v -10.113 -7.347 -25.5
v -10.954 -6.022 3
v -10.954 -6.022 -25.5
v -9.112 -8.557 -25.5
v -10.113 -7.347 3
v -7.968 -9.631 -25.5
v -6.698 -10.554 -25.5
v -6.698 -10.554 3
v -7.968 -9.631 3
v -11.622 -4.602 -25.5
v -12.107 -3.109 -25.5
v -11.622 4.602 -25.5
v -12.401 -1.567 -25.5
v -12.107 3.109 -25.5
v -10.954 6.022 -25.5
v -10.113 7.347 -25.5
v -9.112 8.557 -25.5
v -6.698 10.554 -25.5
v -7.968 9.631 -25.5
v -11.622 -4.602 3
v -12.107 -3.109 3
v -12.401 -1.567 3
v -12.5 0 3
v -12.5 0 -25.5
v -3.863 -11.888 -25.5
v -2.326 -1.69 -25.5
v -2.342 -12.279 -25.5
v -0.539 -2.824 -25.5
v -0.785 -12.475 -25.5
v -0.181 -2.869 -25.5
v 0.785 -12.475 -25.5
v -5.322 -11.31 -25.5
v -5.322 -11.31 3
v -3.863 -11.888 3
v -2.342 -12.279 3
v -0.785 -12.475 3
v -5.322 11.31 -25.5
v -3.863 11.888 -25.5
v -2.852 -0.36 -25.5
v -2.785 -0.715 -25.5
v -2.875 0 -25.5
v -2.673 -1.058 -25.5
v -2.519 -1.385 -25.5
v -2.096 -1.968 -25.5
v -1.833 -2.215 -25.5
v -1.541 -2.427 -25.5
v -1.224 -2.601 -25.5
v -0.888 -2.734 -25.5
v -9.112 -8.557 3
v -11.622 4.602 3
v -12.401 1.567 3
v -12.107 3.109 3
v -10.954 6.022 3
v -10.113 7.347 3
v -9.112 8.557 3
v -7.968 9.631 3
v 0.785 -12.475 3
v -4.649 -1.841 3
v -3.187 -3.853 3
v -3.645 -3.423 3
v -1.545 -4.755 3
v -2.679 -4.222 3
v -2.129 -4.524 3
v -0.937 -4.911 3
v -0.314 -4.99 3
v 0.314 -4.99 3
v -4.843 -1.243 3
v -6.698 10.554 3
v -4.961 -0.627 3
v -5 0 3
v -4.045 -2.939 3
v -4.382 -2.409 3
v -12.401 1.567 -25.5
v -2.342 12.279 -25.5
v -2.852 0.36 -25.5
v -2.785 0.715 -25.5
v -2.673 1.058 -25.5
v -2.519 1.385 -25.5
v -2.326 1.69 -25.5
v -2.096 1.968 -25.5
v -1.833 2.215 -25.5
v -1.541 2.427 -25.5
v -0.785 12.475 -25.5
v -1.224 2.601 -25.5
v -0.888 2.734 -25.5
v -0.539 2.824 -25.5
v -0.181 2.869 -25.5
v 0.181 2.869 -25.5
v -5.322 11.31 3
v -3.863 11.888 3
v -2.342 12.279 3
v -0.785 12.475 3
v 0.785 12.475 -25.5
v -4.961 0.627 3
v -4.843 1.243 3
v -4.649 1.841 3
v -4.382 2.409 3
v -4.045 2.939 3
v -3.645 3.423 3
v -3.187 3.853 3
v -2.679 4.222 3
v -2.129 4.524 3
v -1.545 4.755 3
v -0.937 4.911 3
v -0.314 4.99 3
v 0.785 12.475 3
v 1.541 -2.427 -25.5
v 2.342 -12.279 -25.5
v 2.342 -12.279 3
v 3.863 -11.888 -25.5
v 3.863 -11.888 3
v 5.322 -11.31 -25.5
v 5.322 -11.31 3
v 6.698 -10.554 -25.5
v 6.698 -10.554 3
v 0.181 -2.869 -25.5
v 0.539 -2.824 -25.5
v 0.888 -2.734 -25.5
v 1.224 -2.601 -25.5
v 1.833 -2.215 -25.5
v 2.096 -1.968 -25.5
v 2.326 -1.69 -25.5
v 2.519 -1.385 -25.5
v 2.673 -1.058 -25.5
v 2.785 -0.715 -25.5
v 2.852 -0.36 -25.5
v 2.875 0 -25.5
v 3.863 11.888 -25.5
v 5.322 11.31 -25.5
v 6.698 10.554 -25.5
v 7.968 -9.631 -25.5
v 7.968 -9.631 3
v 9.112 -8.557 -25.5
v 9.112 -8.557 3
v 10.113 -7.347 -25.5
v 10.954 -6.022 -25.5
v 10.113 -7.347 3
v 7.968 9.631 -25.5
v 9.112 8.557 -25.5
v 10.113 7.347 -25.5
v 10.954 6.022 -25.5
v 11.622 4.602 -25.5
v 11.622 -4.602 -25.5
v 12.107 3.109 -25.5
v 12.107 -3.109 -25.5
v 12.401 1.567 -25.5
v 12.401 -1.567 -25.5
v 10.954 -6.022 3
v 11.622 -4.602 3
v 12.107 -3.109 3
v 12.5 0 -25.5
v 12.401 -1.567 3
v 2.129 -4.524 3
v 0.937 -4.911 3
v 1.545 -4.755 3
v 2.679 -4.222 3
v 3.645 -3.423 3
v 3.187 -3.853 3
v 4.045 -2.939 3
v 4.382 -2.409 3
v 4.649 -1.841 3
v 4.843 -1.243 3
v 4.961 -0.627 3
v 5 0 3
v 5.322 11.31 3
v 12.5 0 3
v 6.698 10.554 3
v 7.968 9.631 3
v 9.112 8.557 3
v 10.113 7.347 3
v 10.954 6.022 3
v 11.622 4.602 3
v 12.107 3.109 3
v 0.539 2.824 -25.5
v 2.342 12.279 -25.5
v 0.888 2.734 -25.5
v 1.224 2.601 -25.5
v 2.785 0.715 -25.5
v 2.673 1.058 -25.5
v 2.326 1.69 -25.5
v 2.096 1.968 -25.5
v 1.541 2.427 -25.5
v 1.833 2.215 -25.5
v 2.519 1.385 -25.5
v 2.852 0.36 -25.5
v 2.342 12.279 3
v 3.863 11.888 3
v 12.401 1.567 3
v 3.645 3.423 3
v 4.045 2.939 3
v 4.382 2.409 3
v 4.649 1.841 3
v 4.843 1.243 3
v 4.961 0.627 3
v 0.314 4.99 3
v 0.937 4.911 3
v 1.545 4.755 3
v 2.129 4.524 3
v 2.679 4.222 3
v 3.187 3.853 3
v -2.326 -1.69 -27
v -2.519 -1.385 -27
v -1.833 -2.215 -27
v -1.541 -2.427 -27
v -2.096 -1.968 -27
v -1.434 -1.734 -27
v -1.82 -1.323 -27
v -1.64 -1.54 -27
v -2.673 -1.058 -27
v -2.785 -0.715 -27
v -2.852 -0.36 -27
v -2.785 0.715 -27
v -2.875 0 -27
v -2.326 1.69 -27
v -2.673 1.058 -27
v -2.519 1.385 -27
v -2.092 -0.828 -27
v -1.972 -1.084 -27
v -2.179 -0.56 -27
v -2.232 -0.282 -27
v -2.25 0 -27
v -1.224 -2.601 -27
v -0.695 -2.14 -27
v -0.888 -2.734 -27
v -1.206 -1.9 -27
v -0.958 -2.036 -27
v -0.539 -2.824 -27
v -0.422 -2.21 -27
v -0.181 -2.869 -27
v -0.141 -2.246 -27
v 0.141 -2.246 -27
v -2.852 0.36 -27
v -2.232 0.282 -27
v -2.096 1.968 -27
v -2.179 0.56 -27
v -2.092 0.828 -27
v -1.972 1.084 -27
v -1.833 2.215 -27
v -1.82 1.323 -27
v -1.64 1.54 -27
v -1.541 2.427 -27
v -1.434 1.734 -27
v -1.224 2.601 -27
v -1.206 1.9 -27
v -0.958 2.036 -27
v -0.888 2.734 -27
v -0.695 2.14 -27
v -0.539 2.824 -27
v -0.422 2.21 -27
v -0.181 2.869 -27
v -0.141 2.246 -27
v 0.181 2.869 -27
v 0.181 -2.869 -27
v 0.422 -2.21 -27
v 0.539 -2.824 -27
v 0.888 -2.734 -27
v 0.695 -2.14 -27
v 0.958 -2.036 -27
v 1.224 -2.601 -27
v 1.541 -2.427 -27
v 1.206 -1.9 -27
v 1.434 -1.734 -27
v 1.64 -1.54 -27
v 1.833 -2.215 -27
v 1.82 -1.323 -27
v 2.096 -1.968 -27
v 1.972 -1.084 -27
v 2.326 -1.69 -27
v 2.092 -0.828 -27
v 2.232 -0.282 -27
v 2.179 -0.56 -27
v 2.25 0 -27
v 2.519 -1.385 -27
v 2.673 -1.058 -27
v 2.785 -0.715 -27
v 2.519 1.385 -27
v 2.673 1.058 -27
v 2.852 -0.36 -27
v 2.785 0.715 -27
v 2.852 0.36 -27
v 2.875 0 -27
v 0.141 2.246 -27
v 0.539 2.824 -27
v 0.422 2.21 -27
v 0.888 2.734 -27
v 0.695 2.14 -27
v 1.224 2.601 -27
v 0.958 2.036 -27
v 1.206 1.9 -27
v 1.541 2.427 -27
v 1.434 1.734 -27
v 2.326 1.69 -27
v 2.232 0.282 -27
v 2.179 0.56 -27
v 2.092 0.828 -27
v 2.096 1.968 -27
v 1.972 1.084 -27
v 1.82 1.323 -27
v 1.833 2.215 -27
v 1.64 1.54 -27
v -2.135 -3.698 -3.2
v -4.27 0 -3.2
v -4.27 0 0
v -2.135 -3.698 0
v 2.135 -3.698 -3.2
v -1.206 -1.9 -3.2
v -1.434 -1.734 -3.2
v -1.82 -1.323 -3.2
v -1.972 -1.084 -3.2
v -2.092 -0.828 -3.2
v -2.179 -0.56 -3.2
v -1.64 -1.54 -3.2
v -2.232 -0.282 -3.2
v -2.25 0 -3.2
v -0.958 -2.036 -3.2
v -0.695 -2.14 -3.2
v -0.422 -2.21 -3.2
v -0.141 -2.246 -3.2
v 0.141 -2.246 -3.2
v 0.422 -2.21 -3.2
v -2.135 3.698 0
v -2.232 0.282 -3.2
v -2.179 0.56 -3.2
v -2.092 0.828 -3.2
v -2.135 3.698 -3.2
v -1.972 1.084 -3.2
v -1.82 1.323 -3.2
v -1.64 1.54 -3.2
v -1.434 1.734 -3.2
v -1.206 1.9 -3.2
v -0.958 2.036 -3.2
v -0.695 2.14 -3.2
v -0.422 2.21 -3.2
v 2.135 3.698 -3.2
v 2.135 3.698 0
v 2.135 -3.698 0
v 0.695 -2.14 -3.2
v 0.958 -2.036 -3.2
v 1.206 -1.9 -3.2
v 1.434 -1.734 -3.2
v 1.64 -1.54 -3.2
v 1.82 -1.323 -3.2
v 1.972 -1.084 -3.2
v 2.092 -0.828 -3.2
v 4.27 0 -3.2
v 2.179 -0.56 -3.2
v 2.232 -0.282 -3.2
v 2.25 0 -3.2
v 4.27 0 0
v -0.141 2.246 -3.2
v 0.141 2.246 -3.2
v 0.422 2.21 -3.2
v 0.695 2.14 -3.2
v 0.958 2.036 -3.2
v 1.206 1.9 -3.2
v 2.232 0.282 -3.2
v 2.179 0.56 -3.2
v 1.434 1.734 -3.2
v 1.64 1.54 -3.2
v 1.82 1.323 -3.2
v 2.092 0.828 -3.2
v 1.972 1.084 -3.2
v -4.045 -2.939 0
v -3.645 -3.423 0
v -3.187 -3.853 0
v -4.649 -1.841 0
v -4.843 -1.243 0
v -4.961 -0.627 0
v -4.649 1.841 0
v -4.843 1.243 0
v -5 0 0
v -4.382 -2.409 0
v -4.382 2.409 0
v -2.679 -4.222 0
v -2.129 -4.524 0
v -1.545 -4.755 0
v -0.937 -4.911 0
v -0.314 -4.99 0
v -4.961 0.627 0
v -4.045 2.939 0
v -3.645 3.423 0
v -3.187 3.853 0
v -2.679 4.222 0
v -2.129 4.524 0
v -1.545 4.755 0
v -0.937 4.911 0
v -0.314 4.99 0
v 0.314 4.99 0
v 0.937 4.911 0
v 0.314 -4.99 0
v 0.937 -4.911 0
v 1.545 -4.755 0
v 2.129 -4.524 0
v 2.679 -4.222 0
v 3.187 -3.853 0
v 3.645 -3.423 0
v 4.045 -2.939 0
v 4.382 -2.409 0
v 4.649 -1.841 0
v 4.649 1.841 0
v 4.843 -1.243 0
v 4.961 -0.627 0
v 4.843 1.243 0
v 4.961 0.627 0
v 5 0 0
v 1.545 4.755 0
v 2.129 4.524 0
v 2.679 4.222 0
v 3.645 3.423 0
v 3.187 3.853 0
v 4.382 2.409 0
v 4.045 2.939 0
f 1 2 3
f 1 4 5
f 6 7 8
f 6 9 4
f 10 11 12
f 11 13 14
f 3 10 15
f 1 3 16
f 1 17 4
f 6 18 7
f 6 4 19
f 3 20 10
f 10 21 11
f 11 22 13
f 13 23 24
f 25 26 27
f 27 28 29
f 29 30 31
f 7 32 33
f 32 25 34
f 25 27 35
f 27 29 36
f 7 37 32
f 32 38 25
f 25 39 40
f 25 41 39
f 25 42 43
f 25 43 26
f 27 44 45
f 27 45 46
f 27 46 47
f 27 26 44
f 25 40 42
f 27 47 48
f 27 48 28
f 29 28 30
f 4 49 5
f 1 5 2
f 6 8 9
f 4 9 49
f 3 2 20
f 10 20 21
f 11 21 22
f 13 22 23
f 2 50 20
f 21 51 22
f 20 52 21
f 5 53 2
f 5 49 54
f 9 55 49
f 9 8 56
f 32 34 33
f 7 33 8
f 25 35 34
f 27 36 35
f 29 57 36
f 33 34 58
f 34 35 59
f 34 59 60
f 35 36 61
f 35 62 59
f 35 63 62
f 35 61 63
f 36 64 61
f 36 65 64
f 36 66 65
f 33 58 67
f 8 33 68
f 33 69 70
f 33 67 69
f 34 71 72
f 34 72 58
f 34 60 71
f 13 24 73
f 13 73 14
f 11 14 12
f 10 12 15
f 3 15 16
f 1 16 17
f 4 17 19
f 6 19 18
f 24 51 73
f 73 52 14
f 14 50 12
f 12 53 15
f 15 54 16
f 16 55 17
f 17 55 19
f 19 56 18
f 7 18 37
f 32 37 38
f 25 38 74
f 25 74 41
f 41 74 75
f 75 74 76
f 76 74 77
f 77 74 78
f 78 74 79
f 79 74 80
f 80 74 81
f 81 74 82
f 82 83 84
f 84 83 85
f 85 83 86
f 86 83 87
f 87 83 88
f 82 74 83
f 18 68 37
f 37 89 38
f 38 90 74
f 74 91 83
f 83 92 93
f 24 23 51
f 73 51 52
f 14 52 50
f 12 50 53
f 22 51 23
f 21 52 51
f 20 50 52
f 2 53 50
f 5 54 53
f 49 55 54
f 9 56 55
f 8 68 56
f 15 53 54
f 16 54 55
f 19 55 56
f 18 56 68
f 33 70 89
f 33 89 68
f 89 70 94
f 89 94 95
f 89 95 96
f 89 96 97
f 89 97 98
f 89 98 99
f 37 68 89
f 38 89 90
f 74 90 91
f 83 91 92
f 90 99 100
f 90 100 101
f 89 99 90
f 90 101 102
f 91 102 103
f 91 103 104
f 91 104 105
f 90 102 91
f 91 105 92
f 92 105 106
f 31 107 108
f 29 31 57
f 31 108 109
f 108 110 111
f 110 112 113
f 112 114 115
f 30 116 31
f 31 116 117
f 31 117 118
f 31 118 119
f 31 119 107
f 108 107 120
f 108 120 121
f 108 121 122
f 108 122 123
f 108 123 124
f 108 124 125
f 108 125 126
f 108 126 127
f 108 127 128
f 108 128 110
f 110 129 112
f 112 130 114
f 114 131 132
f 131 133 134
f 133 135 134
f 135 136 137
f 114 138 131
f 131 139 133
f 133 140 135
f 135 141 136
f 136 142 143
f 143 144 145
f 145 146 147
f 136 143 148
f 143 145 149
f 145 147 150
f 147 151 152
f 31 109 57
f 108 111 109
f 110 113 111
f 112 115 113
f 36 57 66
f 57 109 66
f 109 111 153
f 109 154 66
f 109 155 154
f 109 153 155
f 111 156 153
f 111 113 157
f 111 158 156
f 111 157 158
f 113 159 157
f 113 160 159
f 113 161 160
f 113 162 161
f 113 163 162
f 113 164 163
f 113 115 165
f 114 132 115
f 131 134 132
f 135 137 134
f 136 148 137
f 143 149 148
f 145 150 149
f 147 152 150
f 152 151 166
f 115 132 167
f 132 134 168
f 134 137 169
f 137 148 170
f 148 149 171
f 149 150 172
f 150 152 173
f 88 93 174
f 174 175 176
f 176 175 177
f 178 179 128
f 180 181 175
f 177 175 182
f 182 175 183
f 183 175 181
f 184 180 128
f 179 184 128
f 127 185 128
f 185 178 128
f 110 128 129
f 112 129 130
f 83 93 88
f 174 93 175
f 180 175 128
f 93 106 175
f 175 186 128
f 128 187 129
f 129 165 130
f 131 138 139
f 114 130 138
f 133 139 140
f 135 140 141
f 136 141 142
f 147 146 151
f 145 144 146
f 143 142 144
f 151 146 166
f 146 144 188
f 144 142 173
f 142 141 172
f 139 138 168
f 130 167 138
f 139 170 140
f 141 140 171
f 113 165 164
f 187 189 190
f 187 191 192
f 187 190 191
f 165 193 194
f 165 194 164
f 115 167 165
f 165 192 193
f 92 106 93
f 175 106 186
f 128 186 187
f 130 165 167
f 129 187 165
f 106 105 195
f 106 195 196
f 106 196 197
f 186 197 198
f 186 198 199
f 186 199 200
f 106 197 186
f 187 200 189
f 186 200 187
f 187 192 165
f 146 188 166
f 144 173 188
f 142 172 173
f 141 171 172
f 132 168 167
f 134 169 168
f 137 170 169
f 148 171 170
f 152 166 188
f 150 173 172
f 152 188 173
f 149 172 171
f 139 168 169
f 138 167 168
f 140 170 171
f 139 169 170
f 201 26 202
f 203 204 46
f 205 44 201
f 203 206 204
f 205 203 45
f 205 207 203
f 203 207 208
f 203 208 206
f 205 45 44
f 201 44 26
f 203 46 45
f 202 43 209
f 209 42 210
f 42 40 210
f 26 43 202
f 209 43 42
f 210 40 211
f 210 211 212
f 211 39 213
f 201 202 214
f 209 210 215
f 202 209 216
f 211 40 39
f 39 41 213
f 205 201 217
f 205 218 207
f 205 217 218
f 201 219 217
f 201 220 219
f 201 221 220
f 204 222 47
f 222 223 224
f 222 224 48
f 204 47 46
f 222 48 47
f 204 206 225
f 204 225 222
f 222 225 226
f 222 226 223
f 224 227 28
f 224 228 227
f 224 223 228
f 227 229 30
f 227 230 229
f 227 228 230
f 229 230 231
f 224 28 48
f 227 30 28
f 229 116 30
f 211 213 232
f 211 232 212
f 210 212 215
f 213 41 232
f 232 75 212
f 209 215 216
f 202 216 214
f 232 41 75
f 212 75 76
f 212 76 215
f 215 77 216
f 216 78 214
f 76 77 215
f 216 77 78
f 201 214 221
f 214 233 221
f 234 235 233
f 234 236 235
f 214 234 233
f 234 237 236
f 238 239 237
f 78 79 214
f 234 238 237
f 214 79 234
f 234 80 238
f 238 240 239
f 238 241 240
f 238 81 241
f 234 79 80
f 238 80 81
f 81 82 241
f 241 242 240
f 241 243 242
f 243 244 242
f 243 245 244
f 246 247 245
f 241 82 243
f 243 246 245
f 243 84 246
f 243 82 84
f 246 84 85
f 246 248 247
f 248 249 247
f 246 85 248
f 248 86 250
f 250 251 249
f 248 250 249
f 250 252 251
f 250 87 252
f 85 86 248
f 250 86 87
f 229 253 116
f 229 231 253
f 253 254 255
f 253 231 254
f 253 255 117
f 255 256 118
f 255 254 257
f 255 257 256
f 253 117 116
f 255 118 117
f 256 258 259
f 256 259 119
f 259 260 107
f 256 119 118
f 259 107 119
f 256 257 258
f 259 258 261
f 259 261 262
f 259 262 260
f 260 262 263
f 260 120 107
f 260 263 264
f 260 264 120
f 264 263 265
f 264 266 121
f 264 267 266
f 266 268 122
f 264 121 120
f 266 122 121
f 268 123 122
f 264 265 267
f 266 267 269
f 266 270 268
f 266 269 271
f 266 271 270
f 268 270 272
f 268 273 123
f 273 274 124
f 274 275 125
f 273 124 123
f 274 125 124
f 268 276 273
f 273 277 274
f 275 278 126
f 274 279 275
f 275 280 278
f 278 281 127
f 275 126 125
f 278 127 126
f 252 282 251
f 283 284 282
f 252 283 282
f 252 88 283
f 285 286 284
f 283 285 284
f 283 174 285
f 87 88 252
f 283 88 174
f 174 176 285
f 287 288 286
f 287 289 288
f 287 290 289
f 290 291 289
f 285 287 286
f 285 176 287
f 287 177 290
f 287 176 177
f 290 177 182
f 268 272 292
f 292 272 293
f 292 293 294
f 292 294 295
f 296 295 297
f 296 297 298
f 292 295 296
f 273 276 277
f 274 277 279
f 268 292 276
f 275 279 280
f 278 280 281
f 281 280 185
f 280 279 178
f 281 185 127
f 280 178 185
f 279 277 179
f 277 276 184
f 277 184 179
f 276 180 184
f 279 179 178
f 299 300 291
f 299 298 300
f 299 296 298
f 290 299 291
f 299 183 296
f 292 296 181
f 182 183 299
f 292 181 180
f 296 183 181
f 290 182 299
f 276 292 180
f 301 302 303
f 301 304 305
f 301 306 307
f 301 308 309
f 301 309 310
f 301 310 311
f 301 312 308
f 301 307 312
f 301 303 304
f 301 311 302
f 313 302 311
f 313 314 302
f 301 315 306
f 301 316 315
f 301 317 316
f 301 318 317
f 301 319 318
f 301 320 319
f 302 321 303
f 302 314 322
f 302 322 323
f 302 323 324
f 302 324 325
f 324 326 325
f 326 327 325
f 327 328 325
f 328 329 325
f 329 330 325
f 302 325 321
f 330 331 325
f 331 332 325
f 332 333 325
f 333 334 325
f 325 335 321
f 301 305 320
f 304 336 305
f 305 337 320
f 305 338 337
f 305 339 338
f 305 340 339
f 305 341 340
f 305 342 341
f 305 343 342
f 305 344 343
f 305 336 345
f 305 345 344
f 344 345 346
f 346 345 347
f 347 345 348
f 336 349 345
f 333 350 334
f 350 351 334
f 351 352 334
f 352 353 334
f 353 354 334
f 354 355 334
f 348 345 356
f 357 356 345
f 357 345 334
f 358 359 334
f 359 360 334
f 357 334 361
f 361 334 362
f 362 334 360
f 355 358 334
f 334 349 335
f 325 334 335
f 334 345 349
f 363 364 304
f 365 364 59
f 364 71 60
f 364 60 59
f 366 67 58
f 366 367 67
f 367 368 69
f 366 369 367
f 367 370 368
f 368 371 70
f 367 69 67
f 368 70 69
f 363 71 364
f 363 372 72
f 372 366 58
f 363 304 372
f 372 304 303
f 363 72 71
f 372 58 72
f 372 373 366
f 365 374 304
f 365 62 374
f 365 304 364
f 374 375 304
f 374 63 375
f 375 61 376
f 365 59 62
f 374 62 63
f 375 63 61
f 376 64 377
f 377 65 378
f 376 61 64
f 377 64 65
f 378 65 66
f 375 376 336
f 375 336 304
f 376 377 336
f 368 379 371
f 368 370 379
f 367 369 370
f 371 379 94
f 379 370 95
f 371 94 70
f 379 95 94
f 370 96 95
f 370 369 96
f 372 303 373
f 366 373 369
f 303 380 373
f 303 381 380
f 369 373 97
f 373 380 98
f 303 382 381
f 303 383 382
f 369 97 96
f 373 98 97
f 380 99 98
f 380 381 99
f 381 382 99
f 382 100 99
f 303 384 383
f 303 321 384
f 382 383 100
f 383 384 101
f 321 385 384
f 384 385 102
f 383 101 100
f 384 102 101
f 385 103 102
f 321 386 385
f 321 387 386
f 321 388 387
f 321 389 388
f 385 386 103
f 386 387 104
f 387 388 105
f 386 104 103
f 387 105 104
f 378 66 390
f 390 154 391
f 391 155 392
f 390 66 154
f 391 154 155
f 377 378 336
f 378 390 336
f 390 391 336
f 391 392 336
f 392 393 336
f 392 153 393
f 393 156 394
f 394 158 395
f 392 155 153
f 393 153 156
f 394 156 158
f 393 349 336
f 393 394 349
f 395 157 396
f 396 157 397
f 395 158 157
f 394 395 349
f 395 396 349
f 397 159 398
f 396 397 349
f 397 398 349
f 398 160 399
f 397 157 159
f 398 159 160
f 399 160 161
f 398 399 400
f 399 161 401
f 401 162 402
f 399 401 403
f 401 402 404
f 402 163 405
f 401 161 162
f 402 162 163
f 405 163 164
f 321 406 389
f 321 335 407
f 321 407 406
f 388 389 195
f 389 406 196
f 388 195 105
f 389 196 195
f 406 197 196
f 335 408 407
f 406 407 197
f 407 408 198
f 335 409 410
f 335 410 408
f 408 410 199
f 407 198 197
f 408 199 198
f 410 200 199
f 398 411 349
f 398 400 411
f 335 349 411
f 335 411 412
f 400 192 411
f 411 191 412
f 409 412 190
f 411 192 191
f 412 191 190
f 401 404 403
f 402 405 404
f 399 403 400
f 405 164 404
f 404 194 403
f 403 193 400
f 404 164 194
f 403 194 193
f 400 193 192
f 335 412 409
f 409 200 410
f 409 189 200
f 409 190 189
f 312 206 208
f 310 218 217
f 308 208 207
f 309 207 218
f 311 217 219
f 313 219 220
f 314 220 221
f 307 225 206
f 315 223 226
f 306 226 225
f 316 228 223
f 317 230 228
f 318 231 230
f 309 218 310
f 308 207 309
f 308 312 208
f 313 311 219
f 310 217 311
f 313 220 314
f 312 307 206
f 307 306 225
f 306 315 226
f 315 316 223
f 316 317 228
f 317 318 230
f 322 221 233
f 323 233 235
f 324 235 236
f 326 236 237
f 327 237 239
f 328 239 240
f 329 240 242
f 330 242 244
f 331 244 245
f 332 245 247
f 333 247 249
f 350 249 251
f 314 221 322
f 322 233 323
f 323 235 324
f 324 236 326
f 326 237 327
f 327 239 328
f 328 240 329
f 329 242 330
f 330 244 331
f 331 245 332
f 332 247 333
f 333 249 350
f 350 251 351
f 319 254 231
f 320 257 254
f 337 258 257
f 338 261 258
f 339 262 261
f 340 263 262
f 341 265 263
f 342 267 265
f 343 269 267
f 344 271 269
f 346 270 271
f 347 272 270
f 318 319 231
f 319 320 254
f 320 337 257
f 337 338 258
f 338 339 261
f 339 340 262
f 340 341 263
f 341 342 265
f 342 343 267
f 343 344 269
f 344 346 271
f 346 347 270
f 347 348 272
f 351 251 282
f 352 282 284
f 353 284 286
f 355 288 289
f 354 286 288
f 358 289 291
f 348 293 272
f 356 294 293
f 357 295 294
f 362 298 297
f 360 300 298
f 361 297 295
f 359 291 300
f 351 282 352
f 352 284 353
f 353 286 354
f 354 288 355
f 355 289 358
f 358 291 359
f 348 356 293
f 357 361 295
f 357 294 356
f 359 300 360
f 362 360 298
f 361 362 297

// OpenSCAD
$fn = 50;


difference() {
	union() {
		translate(v = [0, 0, -25.5000000000]) {
			cylinder(h = 28.5000000000, r = 12.5000000000);
		}
		#translate(v = [0, 0, -27.0000000000]) {
			cylinder(h = 27, r = 2.8750000000);
		}
	}
	union() {
		translate(v = [0, 0, 0]) {
			rotate(a = [0, 0, 0]) {
				difference() {
					union() {
						translate(v = [0, 0, -3.2000000000]) {
							linear_extrude(height = 3.2000000000) {
								polygon(points = [[4.2698000000, 0.0000000000], [2.1349000000, 3.6977552691], [-2.1349000000, 3.6977552691], [-4.2698000000, 0.0000000000], [-2.1349000000, -3.6977552691], [2.1349000000, -3.6977552691]]);
							}
						}
					}
					union();
				}
			}
		}
		#cylinder(h = 3, r = 5.0000000000);
		#translate(v = [0, 0, -100.0000000000]) {
			cylinder(h = 200, r = 2.2500000000);
		}
	}
}
